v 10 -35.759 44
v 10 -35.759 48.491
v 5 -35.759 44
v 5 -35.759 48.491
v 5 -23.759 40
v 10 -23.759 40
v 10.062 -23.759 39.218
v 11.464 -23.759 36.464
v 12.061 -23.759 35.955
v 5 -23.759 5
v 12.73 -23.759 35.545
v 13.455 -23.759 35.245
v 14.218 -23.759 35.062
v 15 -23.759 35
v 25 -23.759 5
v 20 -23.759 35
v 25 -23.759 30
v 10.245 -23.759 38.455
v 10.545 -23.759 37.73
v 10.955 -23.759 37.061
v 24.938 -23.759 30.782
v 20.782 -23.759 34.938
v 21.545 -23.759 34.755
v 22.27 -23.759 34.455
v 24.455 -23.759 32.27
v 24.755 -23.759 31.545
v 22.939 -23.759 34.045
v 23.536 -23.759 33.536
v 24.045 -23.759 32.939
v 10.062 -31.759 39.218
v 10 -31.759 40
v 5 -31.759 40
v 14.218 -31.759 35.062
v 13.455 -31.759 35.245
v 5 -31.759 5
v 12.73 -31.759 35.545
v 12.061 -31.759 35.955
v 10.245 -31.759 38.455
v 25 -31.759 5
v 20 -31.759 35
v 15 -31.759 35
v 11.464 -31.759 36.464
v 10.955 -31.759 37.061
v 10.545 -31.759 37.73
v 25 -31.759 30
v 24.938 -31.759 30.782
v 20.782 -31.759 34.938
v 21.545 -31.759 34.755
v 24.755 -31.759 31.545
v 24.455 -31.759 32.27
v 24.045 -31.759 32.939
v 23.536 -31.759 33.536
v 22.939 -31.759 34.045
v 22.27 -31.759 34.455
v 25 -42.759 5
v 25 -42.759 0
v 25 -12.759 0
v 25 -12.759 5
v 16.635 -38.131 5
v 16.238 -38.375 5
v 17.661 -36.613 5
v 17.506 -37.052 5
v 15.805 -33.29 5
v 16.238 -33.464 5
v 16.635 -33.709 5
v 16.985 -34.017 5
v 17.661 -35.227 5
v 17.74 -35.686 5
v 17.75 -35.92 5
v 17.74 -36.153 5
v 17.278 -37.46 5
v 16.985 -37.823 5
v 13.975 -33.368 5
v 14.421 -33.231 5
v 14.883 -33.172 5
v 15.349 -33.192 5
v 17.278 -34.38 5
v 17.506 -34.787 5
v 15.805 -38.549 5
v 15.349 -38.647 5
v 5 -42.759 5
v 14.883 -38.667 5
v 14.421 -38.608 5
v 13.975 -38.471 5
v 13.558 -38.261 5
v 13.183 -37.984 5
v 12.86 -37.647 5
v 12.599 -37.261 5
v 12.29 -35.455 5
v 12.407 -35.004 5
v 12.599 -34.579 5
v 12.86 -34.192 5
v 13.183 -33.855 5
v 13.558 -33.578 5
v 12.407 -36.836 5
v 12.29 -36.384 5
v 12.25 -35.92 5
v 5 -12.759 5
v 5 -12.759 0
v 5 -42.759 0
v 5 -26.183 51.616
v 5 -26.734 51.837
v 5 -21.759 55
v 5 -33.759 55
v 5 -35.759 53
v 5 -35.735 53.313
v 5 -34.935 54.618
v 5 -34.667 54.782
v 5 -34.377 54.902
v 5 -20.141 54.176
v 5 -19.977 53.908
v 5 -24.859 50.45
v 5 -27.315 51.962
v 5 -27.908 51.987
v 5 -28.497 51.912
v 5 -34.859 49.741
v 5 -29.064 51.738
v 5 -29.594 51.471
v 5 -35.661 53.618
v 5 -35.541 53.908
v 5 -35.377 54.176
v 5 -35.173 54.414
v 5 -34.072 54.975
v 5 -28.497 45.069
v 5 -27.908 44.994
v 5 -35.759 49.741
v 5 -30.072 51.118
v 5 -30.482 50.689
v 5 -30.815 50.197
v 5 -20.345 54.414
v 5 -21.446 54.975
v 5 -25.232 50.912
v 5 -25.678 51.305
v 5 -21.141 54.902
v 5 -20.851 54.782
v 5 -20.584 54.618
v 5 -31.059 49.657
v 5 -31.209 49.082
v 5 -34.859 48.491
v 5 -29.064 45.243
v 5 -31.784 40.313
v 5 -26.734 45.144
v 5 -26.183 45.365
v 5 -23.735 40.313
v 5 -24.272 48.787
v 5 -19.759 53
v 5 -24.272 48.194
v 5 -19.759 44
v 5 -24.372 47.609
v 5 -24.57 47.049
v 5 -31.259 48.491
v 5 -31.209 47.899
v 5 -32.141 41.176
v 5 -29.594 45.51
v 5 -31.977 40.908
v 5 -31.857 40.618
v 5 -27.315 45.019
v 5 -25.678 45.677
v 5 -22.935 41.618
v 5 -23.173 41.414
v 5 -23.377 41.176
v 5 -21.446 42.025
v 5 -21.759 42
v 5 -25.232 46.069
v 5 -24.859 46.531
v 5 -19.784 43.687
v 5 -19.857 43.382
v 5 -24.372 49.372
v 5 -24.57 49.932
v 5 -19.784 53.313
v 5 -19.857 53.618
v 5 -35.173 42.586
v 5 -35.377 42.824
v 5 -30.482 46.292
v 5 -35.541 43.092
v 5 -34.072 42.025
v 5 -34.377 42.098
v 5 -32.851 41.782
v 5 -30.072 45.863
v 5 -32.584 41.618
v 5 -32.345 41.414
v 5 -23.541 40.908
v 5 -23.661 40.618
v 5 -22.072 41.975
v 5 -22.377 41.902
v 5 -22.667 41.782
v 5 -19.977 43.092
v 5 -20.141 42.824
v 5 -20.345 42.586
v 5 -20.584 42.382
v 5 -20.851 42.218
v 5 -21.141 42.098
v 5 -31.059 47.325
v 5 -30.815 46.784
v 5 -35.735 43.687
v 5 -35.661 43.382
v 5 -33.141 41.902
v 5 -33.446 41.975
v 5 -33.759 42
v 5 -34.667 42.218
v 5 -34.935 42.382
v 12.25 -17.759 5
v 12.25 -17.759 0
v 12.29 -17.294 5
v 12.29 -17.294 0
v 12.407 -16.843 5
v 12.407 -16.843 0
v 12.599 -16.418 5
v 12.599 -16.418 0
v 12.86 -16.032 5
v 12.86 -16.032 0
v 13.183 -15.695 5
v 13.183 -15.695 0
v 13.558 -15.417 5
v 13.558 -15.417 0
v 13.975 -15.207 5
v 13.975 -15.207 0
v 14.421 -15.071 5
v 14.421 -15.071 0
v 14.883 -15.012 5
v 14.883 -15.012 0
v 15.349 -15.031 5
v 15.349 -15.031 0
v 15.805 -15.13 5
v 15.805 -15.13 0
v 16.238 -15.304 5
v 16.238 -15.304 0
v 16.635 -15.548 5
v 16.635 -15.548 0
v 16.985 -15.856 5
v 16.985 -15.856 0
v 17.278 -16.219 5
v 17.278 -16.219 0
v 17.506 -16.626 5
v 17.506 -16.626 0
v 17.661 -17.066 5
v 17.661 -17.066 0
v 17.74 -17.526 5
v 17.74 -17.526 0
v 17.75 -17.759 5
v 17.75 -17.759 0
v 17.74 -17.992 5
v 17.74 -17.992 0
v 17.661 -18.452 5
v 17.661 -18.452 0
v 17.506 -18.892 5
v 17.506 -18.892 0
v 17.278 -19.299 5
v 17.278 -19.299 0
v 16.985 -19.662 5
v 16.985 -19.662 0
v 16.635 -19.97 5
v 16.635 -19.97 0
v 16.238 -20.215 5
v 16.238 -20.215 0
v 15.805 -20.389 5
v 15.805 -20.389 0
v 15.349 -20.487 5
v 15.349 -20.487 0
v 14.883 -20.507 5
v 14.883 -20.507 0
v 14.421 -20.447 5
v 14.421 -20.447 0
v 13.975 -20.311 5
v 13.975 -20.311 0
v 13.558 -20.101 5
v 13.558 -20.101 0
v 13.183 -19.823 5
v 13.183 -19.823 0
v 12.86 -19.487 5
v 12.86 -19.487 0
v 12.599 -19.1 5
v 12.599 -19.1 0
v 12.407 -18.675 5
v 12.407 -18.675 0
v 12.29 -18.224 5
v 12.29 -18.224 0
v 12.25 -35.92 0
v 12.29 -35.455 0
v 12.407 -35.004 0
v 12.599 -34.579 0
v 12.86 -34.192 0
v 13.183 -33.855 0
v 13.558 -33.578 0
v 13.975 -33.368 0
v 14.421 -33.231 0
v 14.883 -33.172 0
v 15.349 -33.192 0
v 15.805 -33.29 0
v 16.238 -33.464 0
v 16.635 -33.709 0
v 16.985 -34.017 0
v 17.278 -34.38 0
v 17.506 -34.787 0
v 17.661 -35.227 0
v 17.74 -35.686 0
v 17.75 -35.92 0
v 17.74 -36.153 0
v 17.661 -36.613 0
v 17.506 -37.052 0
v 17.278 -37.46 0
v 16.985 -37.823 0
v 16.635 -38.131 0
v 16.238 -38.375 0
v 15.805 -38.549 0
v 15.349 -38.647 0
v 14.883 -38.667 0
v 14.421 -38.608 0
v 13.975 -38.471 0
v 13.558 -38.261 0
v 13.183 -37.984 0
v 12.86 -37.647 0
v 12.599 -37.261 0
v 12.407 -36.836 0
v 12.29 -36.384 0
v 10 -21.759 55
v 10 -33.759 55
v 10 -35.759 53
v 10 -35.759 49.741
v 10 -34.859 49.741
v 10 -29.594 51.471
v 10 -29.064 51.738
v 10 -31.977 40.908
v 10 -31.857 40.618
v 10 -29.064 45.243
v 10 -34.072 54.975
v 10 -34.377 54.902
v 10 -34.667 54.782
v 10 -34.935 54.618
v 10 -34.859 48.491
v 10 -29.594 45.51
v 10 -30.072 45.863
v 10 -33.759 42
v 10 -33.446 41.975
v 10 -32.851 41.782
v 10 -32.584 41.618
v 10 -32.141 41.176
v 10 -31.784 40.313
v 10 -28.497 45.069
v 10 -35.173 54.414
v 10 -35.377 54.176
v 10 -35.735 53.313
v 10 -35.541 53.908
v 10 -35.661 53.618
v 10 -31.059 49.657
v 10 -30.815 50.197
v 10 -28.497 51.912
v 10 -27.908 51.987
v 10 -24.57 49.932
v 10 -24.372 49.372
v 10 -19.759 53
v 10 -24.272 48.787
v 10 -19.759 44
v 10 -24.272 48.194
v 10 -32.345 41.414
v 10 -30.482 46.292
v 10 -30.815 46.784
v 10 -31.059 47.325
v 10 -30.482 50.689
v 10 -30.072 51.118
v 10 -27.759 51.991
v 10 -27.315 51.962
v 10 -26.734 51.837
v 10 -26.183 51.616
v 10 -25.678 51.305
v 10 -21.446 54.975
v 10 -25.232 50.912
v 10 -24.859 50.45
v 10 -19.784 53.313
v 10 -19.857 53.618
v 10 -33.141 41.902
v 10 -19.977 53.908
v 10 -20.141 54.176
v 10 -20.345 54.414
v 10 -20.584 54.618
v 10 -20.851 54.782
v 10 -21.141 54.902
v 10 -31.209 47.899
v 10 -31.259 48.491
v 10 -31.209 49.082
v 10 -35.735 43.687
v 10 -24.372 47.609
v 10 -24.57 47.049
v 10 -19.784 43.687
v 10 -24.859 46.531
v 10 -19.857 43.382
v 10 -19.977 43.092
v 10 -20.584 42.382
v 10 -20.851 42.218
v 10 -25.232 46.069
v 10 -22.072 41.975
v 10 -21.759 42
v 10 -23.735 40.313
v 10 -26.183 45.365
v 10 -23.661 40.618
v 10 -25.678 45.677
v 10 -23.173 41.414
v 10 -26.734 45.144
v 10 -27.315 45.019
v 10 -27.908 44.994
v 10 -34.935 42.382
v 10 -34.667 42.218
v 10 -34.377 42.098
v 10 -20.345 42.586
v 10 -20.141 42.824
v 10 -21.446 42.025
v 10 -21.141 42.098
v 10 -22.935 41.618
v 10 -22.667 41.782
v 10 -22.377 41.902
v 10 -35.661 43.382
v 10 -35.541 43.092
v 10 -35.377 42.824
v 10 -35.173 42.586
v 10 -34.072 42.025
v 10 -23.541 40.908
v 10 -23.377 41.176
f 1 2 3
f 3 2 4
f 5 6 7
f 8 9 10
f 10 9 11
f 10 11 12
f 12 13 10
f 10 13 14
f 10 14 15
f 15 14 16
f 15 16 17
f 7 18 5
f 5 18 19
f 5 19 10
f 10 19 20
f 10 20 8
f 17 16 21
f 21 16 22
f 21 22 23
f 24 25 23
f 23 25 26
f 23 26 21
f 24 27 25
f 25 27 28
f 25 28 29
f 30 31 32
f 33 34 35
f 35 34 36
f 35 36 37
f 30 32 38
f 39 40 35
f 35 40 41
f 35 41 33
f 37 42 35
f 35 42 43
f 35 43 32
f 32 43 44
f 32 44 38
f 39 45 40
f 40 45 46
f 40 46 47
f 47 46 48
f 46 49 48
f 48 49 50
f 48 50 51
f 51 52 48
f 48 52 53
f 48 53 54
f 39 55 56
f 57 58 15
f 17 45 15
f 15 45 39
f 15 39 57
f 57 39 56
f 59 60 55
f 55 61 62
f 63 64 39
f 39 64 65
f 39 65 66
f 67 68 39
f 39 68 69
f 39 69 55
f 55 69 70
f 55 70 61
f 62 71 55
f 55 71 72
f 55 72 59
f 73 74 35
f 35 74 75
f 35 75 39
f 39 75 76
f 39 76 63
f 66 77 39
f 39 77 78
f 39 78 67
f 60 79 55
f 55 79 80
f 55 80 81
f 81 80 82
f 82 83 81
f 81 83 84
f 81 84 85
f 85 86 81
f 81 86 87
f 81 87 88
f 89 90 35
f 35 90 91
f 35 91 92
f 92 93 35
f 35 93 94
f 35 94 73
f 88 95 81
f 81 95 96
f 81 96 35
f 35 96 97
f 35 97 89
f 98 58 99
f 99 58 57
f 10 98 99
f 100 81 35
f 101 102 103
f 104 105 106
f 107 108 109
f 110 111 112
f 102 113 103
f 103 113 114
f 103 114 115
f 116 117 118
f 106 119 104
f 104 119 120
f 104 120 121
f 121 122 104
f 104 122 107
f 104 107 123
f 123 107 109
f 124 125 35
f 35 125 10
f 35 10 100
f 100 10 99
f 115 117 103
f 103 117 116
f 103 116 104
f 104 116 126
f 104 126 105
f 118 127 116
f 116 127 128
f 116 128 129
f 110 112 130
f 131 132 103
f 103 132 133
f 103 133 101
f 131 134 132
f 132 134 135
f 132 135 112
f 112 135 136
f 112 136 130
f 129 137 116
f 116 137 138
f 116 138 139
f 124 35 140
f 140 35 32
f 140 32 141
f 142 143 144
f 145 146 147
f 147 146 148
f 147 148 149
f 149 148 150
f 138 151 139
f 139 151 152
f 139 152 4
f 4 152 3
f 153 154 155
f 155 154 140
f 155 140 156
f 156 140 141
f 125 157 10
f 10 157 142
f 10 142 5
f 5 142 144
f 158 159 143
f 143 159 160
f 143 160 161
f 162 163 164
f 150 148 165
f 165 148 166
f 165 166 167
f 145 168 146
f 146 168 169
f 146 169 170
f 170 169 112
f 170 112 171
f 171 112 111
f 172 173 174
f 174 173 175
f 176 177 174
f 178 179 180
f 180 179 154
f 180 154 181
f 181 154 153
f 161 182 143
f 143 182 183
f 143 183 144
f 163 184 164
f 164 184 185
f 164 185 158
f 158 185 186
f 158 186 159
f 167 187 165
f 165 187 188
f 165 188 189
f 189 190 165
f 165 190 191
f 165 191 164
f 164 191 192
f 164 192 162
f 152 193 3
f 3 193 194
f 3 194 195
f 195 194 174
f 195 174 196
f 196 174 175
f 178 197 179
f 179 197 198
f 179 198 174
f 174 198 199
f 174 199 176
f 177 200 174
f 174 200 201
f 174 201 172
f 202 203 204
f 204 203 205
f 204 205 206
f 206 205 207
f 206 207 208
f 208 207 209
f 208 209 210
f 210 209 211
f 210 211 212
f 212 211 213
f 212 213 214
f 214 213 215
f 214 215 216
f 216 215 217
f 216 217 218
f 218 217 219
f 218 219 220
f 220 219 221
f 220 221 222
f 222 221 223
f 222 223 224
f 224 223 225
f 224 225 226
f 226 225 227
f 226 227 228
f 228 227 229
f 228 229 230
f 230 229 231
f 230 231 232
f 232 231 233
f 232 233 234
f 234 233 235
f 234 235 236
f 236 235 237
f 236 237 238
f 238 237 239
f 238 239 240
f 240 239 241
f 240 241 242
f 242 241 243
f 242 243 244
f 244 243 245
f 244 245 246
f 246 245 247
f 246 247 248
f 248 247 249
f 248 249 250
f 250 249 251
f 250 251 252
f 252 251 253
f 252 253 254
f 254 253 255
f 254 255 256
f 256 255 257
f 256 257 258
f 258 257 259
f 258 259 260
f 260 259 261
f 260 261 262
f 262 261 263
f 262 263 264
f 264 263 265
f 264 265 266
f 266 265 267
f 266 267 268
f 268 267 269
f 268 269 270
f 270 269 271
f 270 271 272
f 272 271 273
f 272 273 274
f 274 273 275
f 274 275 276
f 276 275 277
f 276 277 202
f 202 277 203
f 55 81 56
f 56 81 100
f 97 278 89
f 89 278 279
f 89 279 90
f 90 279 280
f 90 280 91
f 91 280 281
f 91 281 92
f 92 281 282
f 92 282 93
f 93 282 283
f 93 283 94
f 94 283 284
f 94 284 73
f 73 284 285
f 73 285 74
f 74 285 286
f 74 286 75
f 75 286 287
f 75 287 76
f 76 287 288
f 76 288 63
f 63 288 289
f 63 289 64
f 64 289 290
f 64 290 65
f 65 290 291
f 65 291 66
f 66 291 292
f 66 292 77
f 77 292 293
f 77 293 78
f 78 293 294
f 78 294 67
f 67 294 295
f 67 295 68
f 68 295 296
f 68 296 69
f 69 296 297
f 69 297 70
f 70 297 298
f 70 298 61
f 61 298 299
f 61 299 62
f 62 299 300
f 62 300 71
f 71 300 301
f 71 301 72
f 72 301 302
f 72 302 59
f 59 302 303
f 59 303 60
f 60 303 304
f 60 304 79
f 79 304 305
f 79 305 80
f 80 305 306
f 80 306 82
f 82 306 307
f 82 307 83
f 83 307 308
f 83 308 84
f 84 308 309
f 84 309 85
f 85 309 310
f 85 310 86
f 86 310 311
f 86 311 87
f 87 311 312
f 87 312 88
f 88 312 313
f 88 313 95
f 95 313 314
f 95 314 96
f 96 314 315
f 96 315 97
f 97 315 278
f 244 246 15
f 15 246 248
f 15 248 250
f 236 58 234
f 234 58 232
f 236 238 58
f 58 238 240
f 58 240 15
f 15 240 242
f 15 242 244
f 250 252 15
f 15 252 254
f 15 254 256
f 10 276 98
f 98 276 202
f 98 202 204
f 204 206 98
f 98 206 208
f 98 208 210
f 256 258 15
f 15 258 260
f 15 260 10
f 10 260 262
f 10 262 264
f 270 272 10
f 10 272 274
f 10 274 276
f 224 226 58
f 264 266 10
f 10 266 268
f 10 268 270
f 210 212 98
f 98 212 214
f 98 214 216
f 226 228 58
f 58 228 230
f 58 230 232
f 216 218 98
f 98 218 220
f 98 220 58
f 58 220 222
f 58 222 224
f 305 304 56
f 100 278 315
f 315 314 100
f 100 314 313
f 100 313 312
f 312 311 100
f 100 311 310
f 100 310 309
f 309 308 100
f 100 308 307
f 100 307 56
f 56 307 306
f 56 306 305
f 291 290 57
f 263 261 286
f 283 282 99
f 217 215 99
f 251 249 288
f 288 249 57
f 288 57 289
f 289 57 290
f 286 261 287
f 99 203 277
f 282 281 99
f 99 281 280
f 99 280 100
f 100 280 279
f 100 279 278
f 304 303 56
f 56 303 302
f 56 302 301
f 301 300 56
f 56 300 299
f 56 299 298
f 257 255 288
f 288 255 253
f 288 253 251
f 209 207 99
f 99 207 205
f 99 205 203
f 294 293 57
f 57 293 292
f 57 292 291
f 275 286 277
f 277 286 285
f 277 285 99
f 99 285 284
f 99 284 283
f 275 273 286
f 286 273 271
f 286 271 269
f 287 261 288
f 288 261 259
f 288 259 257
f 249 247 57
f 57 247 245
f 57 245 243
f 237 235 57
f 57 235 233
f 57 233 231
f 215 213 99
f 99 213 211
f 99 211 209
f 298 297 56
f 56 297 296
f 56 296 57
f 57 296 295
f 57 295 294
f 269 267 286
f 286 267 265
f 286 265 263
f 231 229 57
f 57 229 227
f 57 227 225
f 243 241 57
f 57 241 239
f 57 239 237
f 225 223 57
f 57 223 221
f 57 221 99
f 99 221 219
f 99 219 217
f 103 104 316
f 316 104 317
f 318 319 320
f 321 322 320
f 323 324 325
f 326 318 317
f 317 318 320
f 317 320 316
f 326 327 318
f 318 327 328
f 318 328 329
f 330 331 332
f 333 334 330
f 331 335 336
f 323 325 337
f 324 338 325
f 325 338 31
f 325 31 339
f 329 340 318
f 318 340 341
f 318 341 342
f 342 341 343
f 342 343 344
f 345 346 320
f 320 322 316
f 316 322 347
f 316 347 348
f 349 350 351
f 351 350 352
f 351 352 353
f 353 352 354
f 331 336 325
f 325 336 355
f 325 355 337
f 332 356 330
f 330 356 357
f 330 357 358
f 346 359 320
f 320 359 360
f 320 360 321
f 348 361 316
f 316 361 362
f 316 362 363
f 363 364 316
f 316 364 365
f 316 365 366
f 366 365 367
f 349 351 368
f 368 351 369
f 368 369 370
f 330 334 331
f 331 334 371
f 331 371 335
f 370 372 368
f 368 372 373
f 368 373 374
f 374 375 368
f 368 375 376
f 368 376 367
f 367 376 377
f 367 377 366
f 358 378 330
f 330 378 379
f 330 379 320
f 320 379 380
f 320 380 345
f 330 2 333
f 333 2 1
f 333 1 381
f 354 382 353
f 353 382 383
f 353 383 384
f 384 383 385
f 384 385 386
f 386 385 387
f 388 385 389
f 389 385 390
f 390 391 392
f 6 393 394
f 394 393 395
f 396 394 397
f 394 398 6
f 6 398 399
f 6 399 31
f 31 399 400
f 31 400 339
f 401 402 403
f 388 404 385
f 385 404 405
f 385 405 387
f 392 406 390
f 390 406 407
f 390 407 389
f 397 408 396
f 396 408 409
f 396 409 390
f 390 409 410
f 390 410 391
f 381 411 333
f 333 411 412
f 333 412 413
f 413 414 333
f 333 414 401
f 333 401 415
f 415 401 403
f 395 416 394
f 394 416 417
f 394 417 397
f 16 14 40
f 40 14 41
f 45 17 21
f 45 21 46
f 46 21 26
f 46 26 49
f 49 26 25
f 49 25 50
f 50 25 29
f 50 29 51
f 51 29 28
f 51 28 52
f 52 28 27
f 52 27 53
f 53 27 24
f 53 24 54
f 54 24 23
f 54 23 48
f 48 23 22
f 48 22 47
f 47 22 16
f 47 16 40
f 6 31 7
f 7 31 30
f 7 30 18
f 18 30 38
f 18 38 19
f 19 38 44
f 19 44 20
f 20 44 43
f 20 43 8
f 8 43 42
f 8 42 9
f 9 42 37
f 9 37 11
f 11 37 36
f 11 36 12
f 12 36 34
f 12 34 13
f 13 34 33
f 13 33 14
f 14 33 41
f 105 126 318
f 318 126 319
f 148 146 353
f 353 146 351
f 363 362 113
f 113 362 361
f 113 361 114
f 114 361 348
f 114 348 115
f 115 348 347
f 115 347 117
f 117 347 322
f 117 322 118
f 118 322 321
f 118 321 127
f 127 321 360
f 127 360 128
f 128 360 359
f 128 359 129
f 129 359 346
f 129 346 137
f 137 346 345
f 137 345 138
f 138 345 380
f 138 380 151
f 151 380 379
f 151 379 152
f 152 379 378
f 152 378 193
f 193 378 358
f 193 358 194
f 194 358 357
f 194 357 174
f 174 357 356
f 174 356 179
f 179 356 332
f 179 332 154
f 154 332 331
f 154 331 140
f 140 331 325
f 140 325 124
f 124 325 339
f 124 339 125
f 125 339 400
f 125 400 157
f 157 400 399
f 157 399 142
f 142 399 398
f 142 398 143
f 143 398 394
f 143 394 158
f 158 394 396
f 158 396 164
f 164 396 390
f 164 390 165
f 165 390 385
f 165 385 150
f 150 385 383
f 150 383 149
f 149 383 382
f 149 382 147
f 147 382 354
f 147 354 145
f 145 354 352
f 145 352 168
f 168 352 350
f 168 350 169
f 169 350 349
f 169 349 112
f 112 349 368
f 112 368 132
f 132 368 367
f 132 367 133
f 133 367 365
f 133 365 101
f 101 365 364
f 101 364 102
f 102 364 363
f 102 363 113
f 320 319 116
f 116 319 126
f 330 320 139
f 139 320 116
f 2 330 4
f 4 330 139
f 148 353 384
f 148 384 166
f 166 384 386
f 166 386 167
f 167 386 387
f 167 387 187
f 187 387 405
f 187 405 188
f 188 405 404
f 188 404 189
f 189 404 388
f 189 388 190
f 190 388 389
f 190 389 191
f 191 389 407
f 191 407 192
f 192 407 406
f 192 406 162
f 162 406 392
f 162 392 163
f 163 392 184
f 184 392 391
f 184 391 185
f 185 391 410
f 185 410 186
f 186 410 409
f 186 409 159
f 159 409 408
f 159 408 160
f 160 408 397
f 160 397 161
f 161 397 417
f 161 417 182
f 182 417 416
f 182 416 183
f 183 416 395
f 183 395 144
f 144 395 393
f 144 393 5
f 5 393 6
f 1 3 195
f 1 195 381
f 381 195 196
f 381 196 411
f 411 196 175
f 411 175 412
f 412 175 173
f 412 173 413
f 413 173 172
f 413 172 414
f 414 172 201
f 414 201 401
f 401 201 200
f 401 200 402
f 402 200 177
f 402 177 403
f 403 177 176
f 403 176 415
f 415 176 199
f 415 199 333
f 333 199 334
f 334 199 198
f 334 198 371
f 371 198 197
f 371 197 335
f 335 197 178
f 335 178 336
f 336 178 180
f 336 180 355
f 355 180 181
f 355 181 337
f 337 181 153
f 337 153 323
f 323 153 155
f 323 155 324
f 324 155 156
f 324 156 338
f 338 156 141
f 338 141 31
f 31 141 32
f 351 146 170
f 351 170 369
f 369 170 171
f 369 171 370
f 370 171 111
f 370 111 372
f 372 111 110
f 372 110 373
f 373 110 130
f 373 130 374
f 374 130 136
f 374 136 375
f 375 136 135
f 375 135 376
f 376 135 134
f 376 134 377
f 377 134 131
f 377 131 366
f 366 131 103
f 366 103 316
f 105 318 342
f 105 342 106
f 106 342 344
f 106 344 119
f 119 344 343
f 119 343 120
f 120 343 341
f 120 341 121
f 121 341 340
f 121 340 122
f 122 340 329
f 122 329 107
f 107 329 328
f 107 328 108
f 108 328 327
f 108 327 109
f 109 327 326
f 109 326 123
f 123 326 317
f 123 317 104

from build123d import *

# Parameters (mm, degrees)
SKETCH1_R               = 2.75
BOSS_EXTRUDE1_DEPTH     = 5
SKETCH2_W               = 20
SKETCH2_H               = 4
BOSS_EXTRUDE2_DEPTH     = 50
CUT_EXTRUDE1_DEPTH      = 73.479956342
CUT_EXTRUDE1_DEPTH_BACK = 73.479956342
SKETCH5_W               = 15
SKETCH5_H               = 8
CUT_EXTRUDE2_DEPTH      = 15
SKETCH6_W               = 15
SKETCH6_H               = 8
CUT_EXTRUDE3_DEPTH      = 5
FILLET1_R               = 5
SKETCH7_W               = 13
SKETCH7_H               = 4
BOSS_EXTRUDE3_DEPTH     = 5
SKETCH8_R               = 3.5
CUT_EXTRUDE5_DEPTH      = 73.479956342
SKETCH9_W               = 1.25
SKETCH9_H               = 0.9
SKETCH9_H_2             = 0.5
CUT_EXTRUDE6_DEPTH      = 5
FILLET2_R               = 2


with BuildPart() as part:
    # Sketch1 → Boss-Extrude1 (new body)
    with BuildSketch(Plane.XY):
        Polygon((15, -12.759140208), (25, -12.759140208), (25, -42.759140208), (5, -42.759140208), (5, -12.759140208), align=None)
        with Locations((15, -35.919713403)):
            Circle(SKETCH1_R, mode=Mode.SUBTRACT)
        with Locations((15, -17.759140208)):
            Circle(SKETCH1_R, mode=Mode.SUBTRACT)
    extrude(amount=BOSS_EXTRUDE1_DEPTH)

    # Sketch2 → Boss-Extrude2 (add)
    with BuildSketch(Plane.XY.offset(5)):
        with Locations((15, -25.759140208)):
            Rectangle(SKETCH2_W, SKETCH2_H)
        with Locations((15, -29.759140208)):
            Rectangle(SKETCH2_W, SKETCH2_H)
    extrude(amount=BOSS_EXTRUDE2_DEPTH)

    # Sketch3 → Cut-Extrude1 (cut, two sides: drawn at the far end of the back side and taken through both)
    with BuildSketch(Plane(origin=(25, 0, 0), x_dir=(0, 0, -1), z_dir=(1, 0, 0)).offset(-CUT_EXTRUDE1_DEPTH_BACK)):
        with BuildLine():
            Line((-46.695516884, -26.87718455), (-48.490552878, -27.759140208))
            Line((-48.490552878, -27.759140208), (-46.490552878, -27.759140208))
            ThreePointArc((-46.490552878, -27.759140208), (-46.542467666, -27.306410701), (-46.695516884, -26.87718455))
        make_face()
        with BuildLine():
            Line((-50.490552878, -27.759140208), (-48.490552878, -27.759140208))
            Line((-48.490552878, -27.759140208), (-46.695516884, -26.87718455))
            ThreePointArc((-46.695516884, -26.87718455), (-48.943282385, -25.811054996), (-50.490552878, -27.759140208))
        make_face()
        with BuildLine():
            Line((-46.490552878, -27.759140208), (-48.490552878, -27.759140208))
            Line((-48.490552878, -27.759140208), (-50.490552878, -27.759140208))
            ThreePointArc((-50.490552878, -27.759140208), (-48.490552878, -29.759140208), (-46.490552878, -27.759140208))
        make_face()
    extrude(amount=CUT_EXTRUDE1_DEPTH + CUT_EXTRUDE1_DEPTH_BACK, mode=Mode.SUBTRACT)

    # Sketch5 → Cut-Extrude2 (cut)
    with BuildSketch(Plane.XY.offset(55)):
        with Locations((17.5, -27.759140208)):
            Rectangle(SKETCH5_W, SKETCH5_H)
    extrude(amount=-CUT_EXTRUDE2_DEPTH, mode=Mode.SUBTRACT)

    # Sketch6 → Cut-Extrude3 (cut)
    with BuildSketch(Plane.XY.offset(40)):
        with Locations((17.5, -27.759140208)):
            Rectangle(SKETCH6_W, SKETCH6_H)
    extrude(amount=-CUT_EXTRUDE3_DEPTH, mode=Mode.SUBTRACT)

    # Fillet1
    fillet1_edges = [part.edges().sort_by_distance(p)[0] for p in [
        (10, -27.759140208, 35),
        (25, -27.759140208, 35),
    ]]
    fillet(fillet1_edges, radius=FILLET1_R)

    # Sketch7 → Boss-Extrude3 (add)
    with BuildSketch(Plane.ZY.offset(-5)):
        with Locations((48.5, -33.759140208)):
            Rectangle(SKETCH7_W, SKETCH7_H)
        with Locations((48.5, -21.759140208)):
            Rectangle(SKETCH7_W, SKETCH7_H)
    extrude(amount=-BOSS_EXTRUDE3_DEPTH)

    # Sketch8 → Cut-Extrude5 (cut, through all)
    with BuildSketch(Plane.ZY.offset(-5)):
        with Locations(Location((48.490552878, -27.759140208, 0), (0, 0, 270))):
            Circle(SKETCH8_R)
    extrude(amount=-CUT_EXTRUDE5_DEPTH, mode=Mode.SUBTRACT)

    # Sketch9 → Cut-Extrude6 (cut)
    with BuildSketch(Plane.ZY.offset(-5)):
        with Locations((49.115552878, -35.309140208)):
            Rectangle(SKETCH9_W, SKETCH9_H)
        with Locations((47.865552878, -36.009140208)):
            Rectangle(SKETCH9_W, SKETCH9_H_2)
        with Locations((49.115552878, -36.009140208)):
            Rectangle(SKETCH9_W, SKETCH9_H_2)
    extrude(amount=-CUT_EXTRUDE6_DEPTH, mode=Mode.SUBTRACT)

    # Fillet2
    fillet2_edges = [part.edges().sort_by_distance(p)[0] for p in [
        (7.5, -23.759140208, 42),
        (7.5, -31.759140208, 42),
        (7.5, -35.759140208, 42),
        (7.5, -19.759140208, 42),
        (7.5, -19.759140208, 55),
        (7.5, -35.759140208, 55),
    ]]
    fillet(fillet2_edges, radius=FILLET2_R - 0.0001)  # a hair under: the kernel refuses the full size


solid = part.part
